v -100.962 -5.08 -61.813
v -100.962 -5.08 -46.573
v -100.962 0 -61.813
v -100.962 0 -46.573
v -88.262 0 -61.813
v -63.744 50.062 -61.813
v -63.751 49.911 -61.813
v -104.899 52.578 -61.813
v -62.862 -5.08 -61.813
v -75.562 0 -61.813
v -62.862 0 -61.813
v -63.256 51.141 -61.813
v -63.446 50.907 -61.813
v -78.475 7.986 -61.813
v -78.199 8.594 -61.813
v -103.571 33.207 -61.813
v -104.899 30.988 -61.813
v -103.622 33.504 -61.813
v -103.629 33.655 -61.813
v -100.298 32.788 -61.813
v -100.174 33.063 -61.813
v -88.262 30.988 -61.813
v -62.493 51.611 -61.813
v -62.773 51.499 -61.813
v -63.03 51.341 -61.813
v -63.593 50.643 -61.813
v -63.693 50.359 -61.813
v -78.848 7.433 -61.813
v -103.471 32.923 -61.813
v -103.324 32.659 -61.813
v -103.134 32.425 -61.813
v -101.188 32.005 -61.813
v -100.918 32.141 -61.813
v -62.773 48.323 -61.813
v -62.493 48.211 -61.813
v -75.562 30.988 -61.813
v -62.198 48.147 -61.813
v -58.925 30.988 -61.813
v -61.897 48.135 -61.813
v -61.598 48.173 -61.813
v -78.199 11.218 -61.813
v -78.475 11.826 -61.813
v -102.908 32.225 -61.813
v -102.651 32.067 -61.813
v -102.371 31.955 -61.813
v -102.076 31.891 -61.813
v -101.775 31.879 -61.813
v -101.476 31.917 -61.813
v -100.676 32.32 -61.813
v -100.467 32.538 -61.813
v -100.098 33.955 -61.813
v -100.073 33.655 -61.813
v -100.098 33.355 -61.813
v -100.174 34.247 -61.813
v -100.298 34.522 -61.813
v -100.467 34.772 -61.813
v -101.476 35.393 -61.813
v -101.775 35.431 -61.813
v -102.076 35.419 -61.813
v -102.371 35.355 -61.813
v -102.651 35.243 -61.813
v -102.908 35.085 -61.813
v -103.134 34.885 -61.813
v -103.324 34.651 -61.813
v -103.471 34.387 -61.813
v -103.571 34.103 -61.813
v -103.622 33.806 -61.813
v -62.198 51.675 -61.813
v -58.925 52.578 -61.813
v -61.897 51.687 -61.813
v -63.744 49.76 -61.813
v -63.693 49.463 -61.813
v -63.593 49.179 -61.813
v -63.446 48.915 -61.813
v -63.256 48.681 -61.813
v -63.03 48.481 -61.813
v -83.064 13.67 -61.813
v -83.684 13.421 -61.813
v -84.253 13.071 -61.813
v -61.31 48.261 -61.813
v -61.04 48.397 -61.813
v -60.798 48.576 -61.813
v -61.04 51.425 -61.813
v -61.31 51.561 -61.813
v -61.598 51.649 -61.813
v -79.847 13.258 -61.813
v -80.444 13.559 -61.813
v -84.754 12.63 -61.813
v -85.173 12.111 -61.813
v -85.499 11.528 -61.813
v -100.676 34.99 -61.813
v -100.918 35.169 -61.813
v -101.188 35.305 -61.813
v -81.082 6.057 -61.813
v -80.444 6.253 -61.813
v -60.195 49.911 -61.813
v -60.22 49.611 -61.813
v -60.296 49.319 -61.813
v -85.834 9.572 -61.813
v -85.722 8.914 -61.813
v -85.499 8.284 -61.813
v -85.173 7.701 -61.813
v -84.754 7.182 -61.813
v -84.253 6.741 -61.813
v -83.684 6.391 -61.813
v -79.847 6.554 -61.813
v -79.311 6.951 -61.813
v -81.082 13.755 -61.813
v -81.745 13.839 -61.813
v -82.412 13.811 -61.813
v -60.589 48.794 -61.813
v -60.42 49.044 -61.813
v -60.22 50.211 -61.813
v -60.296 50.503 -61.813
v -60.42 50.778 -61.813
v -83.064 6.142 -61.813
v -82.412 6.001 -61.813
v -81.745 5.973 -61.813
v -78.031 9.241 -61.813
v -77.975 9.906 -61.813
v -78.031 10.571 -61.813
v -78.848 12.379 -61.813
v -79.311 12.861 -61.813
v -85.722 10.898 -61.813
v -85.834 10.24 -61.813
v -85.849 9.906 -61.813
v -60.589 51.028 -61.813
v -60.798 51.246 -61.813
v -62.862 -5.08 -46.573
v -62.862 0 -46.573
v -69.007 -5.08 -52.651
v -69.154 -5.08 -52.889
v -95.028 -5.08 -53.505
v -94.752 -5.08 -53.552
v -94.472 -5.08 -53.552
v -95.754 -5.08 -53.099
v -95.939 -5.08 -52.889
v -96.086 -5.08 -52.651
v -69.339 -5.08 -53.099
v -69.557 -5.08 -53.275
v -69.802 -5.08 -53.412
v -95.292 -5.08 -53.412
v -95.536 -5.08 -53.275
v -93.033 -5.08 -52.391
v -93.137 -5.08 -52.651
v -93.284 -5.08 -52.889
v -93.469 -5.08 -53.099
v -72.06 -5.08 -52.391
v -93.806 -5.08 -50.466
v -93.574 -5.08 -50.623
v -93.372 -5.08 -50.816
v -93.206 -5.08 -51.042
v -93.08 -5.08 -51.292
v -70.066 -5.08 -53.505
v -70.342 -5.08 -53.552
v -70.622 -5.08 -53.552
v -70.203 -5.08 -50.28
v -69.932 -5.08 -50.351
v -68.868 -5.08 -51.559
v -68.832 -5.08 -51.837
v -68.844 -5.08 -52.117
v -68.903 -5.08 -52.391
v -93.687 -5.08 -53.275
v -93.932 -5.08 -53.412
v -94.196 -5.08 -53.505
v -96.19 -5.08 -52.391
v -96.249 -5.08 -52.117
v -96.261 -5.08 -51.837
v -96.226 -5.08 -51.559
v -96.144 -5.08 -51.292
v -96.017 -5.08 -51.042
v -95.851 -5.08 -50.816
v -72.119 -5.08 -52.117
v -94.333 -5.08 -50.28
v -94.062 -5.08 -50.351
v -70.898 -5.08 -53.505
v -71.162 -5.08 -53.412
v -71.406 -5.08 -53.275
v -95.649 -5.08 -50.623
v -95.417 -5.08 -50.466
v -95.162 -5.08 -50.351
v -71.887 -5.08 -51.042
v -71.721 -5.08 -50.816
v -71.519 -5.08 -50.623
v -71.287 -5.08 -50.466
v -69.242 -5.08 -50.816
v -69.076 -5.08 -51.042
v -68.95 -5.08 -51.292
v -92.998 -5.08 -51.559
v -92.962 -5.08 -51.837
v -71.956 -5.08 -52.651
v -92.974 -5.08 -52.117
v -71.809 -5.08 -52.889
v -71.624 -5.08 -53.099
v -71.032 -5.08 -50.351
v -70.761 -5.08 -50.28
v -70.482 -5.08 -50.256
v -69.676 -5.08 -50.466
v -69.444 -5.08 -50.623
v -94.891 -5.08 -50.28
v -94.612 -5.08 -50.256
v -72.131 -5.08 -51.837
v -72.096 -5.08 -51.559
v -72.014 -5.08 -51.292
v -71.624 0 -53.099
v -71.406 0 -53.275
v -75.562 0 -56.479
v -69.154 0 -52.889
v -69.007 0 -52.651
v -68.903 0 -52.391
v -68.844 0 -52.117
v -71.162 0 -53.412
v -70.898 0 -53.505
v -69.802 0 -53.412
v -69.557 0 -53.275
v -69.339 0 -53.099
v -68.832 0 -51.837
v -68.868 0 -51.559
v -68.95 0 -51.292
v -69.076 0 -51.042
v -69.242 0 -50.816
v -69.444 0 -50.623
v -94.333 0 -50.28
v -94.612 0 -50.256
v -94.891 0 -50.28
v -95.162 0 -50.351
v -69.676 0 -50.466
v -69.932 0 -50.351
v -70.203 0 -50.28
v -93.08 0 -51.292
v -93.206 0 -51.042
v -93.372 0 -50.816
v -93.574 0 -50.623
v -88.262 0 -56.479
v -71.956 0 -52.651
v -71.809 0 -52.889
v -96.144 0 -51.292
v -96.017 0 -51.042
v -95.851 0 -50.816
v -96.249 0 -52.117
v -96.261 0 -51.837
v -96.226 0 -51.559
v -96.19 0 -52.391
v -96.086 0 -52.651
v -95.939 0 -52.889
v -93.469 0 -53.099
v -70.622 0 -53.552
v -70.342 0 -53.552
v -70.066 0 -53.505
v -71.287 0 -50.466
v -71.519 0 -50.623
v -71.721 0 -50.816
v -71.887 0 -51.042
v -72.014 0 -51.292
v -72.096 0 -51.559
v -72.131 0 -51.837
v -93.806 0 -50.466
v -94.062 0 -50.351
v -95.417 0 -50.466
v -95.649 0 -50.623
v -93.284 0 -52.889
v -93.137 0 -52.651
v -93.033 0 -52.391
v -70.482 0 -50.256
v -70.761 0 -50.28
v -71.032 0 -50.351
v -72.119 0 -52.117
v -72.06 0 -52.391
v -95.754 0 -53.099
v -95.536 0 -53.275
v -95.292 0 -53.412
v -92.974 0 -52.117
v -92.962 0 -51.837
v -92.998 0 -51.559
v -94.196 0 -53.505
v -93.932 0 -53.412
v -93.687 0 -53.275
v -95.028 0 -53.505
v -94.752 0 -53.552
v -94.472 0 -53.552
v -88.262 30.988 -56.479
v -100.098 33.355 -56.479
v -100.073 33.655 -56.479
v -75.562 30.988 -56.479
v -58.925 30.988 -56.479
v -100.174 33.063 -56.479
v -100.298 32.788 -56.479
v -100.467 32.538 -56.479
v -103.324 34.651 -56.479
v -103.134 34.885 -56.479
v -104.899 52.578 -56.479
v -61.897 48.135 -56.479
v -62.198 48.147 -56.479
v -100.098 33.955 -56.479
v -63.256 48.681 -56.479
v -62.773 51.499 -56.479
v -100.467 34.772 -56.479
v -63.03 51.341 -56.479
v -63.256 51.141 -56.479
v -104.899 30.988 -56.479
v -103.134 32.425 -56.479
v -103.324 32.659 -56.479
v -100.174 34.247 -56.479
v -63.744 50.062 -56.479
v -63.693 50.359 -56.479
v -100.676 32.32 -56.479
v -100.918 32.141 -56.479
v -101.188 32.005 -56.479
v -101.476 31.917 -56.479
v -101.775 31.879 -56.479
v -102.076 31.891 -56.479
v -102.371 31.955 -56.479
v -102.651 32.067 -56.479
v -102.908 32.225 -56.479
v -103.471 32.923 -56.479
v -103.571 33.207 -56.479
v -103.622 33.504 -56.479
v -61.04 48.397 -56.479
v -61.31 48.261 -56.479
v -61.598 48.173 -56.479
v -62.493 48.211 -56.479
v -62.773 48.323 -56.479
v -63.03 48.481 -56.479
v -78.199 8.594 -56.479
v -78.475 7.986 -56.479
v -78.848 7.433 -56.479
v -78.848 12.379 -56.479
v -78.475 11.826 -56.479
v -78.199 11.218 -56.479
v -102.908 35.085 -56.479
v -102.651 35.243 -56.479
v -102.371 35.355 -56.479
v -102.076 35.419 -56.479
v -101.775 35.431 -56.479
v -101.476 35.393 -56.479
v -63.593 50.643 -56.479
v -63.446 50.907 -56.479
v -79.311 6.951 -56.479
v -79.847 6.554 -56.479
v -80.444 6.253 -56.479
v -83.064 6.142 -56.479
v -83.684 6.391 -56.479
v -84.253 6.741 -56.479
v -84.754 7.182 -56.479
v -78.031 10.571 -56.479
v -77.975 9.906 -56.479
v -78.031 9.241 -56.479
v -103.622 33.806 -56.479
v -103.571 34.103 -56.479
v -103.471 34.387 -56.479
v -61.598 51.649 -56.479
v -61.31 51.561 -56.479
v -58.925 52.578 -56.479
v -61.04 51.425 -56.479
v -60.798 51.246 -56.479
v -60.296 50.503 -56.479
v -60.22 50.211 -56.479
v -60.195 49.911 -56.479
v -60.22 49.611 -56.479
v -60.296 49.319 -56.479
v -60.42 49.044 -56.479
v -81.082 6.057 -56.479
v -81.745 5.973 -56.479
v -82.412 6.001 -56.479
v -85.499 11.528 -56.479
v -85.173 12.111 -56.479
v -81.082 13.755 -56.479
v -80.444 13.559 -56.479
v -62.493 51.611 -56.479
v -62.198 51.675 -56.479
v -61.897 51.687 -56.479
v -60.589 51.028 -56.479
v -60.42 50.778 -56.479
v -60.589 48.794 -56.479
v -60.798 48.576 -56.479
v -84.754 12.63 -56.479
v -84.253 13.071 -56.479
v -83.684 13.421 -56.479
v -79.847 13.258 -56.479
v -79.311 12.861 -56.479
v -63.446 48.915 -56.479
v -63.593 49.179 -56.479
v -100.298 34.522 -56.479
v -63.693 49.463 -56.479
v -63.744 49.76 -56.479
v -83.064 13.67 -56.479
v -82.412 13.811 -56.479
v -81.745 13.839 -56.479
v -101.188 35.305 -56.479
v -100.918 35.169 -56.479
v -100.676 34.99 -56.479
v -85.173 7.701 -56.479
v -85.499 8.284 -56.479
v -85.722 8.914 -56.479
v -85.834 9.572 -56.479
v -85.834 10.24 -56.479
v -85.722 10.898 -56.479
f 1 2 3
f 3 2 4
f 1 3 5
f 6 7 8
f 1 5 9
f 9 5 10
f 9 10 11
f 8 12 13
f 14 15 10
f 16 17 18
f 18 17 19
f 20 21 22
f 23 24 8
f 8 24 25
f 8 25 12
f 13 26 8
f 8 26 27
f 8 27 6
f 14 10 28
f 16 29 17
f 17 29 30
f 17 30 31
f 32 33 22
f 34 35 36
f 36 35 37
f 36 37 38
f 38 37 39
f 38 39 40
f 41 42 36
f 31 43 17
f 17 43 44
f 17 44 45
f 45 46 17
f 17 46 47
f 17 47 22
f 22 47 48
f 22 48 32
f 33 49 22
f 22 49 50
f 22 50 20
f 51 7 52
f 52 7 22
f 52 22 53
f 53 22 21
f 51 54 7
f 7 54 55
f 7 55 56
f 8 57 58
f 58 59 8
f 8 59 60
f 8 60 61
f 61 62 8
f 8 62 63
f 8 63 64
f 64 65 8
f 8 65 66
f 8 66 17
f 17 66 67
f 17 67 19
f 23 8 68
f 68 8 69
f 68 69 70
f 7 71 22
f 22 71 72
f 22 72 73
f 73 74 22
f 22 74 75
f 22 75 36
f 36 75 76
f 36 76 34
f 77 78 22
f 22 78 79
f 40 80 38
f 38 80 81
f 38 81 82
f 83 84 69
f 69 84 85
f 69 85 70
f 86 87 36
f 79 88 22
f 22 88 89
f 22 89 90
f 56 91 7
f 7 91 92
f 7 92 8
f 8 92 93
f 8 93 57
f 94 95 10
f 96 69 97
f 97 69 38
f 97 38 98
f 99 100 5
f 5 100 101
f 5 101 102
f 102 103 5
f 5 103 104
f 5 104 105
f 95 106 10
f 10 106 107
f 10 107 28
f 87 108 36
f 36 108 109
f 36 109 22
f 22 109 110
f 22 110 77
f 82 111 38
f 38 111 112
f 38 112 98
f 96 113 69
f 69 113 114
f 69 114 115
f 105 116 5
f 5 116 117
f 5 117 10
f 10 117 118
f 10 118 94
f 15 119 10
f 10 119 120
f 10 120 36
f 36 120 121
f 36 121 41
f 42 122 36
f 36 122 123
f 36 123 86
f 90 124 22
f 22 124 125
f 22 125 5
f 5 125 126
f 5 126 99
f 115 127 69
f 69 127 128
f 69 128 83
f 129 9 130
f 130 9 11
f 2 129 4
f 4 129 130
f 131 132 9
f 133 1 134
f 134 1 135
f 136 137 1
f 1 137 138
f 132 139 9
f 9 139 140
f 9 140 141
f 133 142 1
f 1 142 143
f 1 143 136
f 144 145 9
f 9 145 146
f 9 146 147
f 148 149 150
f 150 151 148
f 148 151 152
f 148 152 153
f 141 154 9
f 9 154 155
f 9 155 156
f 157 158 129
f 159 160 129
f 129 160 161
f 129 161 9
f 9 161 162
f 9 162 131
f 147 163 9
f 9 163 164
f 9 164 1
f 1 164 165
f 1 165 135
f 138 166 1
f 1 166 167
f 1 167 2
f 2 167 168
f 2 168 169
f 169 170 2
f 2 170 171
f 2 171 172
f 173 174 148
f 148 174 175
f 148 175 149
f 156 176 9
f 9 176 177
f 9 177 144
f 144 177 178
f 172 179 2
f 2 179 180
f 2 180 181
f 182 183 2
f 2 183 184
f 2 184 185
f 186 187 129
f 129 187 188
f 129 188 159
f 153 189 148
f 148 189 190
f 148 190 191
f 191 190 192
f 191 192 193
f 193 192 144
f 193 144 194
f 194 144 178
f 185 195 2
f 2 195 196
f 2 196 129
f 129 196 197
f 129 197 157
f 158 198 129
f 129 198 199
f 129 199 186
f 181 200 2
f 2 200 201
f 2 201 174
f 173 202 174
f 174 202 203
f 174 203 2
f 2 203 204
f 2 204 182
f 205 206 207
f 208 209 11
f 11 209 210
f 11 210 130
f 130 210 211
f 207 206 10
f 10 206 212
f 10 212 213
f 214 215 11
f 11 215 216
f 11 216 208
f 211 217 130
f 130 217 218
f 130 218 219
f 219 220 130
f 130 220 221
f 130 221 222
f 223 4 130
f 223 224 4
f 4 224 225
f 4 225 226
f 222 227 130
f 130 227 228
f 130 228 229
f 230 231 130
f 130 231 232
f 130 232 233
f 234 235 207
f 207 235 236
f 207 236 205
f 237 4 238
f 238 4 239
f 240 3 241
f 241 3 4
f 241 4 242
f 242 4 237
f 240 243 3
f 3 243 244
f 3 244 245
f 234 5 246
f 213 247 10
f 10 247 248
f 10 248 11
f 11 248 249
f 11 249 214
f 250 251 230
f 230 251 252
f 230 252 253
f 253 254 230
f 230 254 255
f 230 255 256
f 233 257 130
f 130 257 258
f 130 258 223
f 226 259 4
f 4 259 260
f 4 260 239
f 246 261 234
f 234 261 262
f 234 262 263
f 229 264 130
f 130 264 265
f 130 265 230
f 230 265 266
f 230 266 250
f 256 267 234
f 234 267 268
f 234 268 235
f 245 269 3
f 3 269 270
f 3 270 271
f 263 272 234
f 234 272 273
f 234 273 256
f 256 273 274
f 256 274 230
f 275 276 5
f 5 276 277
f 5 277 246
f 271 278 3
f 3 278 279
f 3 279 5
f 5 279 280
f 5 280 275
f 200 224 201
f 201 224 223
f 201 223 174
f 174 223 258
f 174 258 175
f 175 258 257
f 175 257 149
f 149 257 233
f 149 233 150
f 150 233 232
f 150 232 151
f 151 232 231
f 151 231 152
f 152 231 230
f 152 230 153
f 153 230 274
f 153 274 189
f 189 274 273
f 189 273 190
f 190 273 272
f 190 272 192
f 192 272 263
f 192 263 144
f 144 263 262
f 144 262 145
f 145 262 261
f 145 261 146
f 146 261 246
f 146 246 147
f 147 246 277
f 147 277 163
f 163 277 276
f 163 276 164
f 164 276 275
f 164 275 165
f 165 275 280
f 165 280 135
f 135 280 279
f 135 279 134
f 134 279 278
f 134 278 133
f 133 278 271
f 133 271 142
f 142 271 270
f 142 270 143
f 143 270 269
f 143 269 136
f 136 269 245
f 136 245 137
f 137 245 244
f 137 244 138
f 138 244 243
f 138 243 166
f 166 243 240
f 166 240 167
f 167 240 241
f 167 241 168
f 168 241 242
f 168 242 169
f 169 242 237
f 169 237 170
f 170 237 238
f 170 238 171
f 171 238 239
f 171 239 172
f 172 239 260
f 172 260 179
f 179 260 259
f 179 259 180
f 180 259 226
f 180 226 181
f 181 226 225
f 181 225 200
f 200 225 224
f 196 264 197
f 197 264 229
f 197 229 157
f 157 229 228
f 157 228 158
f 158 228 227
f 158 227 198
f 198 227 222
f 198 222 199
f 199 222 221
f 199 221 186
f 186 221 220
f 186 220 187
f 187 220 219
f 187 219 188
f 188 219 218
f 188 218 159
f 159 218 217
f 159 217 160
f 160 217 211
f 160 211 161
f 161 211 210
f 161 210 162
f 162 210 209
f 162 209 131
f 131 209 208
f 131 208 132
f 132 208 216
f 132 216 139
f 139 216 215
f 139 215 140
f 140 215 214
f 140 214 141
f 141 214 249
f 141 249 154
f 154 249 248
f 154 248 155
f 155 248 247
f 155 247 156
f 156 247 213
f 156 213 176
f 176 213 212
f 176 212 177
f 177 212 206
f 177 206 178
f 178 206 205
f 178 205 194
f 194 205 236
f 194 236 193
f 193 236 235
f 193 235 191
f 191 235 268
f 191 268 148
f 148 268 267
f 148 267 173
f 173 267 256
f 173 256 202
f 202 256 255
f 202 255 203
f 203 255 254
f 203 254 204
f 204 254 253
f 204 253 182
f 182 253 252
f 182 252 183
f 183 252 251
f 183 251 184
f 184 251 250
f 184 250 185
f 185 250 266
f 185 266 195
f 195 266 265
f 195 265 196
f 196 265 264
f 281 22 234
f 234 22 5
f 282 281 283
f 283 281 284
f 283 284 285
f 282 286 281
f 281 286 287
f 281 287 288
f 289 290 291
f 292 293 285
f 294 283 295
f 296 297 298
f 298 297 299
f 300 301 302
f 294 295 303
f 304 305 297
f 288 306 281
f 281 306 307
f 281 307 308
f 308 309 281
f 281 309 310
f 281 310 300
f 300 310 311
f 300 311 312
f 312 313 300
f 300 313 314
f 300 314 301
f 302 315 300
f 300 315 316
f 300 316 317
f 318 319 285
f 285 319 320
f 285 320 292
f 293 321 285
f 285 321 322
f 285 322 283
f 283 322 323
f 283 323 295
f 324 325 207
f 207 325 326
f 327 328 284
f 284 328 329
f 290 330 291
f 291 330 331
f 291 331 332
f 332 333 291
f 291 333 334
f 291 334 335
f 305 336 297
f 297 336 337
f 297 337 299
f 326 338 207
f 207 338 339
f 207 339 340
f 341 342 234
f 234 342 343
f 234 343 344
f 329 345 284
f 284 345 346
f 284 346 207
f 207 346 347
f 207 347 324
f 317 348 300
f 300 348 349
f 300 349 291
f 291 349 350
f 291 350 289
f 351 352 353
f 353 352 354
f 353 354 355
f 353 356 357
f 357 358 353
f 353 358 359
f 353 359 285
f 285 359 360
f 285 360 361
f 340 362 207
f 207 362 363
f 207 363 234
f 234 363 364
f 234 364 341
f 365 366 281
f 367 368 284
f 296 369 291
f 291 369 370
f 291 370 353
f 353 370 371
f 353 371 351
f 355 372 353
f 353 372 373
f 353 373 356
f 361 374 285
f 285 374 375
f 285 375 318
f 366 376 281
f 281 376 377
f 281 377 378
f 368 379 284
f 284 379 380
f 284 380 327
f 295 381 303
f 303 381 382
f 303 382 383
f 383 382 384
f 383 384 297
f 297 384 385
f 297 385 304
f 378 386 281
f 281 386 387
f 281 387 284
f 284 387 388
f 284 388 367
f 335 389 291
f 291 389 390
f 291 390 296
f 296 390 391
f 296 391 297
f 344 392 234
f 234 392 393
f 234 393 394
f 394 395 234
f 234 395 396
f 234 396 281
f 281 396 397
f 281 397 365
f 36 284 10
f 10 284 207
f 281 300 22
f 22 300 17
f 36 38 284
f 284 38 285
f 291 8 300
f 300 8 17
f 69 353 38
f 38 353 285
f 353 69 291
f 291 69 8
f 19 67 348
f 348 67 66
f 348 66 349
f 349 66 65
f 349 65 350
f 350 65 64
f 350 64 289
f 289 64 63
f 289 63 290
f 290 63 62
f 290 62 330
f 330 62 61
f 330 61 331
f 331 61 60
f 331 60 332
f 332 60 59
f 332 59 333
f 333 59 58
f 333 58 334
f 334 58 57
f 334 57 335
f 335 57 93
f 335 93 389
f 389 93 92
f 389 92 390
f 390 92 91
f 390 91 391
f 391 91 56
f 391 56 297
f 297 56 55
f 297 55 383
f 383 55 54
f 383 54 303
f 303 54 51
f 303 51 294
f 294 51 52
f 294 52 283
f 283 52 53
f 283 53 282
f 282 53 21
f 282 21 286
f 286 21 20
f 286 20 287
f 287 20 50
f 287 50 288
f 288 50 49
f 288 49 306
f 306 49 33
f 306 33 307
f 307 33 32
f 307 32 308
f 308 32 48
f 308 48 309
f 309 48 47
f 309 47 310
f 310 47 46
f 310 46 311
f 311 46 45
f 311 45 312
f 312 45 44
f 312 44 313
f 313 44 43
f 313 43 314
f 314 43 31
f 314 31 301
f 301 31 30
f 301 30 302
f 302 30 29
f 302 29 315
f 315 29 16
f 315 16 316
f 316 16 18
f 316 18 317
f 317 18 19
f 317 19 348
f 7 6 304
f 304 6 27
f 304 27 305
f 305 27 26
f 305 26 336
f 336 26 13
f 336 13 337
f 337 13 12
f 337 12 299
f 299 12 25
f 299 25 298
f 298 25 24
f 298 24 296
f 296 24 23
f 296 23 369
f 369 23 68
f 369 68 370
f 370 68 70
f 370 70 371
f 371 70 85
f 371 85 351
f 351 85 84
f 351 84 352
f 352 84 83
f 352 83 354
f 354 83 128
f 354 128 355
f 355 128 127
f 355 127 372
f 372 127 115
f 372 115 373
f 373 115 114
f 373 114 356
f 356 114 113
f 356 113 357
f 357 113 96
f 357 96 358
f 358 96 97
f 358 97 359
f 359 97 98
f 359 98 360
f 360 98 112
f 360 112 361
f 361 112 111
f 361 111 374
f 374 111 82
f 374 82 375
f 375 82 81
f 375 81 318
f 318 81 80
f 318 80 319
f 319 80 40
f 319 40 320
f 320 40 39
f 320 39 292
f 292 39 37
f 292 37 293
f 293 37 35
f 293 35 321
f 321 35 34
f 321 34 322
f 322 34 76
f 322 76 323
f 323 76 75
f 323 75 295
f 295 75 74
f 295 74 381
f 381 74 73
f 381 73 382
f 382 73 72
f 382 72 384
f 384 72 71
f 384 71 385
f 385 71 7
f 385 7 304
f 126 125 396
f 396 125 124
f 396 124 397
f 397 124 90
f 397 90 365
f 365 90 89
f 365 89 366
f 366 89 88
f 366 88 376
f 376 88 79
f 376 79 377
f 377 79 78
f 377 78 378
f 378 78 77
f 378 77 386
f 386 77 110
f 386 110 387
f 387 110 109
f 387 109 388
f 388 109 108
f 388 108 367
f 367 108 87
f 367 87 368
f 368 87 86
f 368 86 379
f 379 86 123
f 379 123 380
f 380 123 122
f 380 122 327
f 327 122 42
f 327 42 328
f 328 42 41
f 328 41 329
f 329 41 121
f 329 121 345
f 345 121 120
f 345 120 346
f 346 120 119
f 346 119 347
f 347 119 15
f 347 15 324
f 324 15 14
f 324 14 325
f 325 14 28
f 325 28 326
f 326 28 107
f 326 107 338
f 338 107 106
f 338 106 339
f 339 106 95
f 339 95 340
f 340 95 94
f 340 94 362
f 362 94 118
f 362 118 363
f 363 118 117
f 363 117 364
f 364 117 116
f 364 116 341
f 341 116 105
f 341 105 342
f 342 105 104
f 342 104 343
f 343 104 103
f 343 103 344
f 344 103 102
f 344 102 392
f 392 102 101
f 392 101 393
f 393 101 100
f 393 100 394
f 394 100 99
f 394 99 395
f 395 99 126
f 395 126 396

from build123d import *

# Parameters (mm, degrees)
SKETCH1_W           = 38.1
SKETCH1_H           = 15.24
BOSS_EXTRUDE1_DEPTH = 5.08
SKETCH2_R           = 1.651
CUT_EXTRUDE1_DEPTH  = 119.490202326
SKETCH3_W           = 12.7
SKETCH3_H           = 5.334
BOSS_EXTRUDE2_DEPTH = 30.988
SKETCH6_W           = 45.974
SKETCH6_H           = 5.334
BOSS_EXTRUDE3_DEPTH = 21.59
SKETCH7_R           = 1.778
CUT_EXTRUDE4_DEPTH  = 118.755224526
SKETCH8_R           = 3.937
CUT_EXTRUDE5_DEPTH  = 118.755224526


with BuildPart() as part:
    # Sketch1 → Boss-Extrude1 (new body)
    with BuildSketch(Plane(origin=(0, 0, 0), x_dir=(1, 0, 0), z_dir=(0, 1, 0))):
        with Locations((-81.911608108, 54.193229454)):
            Rectangle(SKETCH1_W, SKETCH1_H)
    extrude(amount=-BOSS_EXTRUDE1_DEPTH)

    # Sketch2 → Cut-Extrude1 (cut, through all)
    with BuildSketch(Plane(origin=(0, 0, 0), x_dir=(1, 0, 0), z_dir=(0, 1, 0))):
        with Locations(Location((-94.611608108, 51.907229454, 0), (0, 0, 270))):
            Circle(SKETCH2_R)
        with Locations(Location((-70.481608108, 51.907229454, 0), (0, 0, 270))):
            Circle(SKETCH2_R)
    extrude(amount=-CUT_EXTRUDE1_DEPTH, mode=Mode.SUBTRACT)

    # Sketch3 → Boss-Extrude2 (add)
    with BuildSketch(Plane(origin=(0, 0, 0), x_dir=(1, 0, 0), z_dir=(0, 1, 0))):
        with Locations((-81.911608108, 59.146229454)):
            Rectangle(SKETCH3_W, SKETCH3_H)
    extrude(amount=BOSS_EXTRUDE2_DEPTH)

    # Sketch6 → Boss-Extrude3 (add)
    with BuildSketch(Plane(origin=(0, 30.988, 0), x_dir=(1, 0, 0), z_dir=(0, 1, 0))):
        with Locations((-81.911608108, 59.146229454)):
            Rectangle(SKETCH6_W, SKETCH6_H)
    extrude(amount=BOSS_EXTRUDE3_DEPTH)

    # Sketch7 → Cut-Extrude4 (cut, through all)
    with BuildSketch(Plane.XY.offset(-56.479229454)):
        with Locations((-101.850608108, 33.655)):
            Circle(SKETCH7_R)
        with Locations((-61.972608108, 49.911)):
            Circle(SKETCH7_R)
    extrude(amount=-CUT_EXTRUDE4_DEPTH, mode=Mode.SUBTRACT)

    # Sketch8 → Cut-Extrude5 (cut, through all)
    with BuildSketch(Plane.XY.offset(-56.479229454)):
        with Locations((-81.911608108, 9.906)):
            Circle(SKETCH8_R)
    extrude(amount=-CUT_EXTRUDE5_DEPTH, mode=Mode.SUBTRACT)


solid = part.part
